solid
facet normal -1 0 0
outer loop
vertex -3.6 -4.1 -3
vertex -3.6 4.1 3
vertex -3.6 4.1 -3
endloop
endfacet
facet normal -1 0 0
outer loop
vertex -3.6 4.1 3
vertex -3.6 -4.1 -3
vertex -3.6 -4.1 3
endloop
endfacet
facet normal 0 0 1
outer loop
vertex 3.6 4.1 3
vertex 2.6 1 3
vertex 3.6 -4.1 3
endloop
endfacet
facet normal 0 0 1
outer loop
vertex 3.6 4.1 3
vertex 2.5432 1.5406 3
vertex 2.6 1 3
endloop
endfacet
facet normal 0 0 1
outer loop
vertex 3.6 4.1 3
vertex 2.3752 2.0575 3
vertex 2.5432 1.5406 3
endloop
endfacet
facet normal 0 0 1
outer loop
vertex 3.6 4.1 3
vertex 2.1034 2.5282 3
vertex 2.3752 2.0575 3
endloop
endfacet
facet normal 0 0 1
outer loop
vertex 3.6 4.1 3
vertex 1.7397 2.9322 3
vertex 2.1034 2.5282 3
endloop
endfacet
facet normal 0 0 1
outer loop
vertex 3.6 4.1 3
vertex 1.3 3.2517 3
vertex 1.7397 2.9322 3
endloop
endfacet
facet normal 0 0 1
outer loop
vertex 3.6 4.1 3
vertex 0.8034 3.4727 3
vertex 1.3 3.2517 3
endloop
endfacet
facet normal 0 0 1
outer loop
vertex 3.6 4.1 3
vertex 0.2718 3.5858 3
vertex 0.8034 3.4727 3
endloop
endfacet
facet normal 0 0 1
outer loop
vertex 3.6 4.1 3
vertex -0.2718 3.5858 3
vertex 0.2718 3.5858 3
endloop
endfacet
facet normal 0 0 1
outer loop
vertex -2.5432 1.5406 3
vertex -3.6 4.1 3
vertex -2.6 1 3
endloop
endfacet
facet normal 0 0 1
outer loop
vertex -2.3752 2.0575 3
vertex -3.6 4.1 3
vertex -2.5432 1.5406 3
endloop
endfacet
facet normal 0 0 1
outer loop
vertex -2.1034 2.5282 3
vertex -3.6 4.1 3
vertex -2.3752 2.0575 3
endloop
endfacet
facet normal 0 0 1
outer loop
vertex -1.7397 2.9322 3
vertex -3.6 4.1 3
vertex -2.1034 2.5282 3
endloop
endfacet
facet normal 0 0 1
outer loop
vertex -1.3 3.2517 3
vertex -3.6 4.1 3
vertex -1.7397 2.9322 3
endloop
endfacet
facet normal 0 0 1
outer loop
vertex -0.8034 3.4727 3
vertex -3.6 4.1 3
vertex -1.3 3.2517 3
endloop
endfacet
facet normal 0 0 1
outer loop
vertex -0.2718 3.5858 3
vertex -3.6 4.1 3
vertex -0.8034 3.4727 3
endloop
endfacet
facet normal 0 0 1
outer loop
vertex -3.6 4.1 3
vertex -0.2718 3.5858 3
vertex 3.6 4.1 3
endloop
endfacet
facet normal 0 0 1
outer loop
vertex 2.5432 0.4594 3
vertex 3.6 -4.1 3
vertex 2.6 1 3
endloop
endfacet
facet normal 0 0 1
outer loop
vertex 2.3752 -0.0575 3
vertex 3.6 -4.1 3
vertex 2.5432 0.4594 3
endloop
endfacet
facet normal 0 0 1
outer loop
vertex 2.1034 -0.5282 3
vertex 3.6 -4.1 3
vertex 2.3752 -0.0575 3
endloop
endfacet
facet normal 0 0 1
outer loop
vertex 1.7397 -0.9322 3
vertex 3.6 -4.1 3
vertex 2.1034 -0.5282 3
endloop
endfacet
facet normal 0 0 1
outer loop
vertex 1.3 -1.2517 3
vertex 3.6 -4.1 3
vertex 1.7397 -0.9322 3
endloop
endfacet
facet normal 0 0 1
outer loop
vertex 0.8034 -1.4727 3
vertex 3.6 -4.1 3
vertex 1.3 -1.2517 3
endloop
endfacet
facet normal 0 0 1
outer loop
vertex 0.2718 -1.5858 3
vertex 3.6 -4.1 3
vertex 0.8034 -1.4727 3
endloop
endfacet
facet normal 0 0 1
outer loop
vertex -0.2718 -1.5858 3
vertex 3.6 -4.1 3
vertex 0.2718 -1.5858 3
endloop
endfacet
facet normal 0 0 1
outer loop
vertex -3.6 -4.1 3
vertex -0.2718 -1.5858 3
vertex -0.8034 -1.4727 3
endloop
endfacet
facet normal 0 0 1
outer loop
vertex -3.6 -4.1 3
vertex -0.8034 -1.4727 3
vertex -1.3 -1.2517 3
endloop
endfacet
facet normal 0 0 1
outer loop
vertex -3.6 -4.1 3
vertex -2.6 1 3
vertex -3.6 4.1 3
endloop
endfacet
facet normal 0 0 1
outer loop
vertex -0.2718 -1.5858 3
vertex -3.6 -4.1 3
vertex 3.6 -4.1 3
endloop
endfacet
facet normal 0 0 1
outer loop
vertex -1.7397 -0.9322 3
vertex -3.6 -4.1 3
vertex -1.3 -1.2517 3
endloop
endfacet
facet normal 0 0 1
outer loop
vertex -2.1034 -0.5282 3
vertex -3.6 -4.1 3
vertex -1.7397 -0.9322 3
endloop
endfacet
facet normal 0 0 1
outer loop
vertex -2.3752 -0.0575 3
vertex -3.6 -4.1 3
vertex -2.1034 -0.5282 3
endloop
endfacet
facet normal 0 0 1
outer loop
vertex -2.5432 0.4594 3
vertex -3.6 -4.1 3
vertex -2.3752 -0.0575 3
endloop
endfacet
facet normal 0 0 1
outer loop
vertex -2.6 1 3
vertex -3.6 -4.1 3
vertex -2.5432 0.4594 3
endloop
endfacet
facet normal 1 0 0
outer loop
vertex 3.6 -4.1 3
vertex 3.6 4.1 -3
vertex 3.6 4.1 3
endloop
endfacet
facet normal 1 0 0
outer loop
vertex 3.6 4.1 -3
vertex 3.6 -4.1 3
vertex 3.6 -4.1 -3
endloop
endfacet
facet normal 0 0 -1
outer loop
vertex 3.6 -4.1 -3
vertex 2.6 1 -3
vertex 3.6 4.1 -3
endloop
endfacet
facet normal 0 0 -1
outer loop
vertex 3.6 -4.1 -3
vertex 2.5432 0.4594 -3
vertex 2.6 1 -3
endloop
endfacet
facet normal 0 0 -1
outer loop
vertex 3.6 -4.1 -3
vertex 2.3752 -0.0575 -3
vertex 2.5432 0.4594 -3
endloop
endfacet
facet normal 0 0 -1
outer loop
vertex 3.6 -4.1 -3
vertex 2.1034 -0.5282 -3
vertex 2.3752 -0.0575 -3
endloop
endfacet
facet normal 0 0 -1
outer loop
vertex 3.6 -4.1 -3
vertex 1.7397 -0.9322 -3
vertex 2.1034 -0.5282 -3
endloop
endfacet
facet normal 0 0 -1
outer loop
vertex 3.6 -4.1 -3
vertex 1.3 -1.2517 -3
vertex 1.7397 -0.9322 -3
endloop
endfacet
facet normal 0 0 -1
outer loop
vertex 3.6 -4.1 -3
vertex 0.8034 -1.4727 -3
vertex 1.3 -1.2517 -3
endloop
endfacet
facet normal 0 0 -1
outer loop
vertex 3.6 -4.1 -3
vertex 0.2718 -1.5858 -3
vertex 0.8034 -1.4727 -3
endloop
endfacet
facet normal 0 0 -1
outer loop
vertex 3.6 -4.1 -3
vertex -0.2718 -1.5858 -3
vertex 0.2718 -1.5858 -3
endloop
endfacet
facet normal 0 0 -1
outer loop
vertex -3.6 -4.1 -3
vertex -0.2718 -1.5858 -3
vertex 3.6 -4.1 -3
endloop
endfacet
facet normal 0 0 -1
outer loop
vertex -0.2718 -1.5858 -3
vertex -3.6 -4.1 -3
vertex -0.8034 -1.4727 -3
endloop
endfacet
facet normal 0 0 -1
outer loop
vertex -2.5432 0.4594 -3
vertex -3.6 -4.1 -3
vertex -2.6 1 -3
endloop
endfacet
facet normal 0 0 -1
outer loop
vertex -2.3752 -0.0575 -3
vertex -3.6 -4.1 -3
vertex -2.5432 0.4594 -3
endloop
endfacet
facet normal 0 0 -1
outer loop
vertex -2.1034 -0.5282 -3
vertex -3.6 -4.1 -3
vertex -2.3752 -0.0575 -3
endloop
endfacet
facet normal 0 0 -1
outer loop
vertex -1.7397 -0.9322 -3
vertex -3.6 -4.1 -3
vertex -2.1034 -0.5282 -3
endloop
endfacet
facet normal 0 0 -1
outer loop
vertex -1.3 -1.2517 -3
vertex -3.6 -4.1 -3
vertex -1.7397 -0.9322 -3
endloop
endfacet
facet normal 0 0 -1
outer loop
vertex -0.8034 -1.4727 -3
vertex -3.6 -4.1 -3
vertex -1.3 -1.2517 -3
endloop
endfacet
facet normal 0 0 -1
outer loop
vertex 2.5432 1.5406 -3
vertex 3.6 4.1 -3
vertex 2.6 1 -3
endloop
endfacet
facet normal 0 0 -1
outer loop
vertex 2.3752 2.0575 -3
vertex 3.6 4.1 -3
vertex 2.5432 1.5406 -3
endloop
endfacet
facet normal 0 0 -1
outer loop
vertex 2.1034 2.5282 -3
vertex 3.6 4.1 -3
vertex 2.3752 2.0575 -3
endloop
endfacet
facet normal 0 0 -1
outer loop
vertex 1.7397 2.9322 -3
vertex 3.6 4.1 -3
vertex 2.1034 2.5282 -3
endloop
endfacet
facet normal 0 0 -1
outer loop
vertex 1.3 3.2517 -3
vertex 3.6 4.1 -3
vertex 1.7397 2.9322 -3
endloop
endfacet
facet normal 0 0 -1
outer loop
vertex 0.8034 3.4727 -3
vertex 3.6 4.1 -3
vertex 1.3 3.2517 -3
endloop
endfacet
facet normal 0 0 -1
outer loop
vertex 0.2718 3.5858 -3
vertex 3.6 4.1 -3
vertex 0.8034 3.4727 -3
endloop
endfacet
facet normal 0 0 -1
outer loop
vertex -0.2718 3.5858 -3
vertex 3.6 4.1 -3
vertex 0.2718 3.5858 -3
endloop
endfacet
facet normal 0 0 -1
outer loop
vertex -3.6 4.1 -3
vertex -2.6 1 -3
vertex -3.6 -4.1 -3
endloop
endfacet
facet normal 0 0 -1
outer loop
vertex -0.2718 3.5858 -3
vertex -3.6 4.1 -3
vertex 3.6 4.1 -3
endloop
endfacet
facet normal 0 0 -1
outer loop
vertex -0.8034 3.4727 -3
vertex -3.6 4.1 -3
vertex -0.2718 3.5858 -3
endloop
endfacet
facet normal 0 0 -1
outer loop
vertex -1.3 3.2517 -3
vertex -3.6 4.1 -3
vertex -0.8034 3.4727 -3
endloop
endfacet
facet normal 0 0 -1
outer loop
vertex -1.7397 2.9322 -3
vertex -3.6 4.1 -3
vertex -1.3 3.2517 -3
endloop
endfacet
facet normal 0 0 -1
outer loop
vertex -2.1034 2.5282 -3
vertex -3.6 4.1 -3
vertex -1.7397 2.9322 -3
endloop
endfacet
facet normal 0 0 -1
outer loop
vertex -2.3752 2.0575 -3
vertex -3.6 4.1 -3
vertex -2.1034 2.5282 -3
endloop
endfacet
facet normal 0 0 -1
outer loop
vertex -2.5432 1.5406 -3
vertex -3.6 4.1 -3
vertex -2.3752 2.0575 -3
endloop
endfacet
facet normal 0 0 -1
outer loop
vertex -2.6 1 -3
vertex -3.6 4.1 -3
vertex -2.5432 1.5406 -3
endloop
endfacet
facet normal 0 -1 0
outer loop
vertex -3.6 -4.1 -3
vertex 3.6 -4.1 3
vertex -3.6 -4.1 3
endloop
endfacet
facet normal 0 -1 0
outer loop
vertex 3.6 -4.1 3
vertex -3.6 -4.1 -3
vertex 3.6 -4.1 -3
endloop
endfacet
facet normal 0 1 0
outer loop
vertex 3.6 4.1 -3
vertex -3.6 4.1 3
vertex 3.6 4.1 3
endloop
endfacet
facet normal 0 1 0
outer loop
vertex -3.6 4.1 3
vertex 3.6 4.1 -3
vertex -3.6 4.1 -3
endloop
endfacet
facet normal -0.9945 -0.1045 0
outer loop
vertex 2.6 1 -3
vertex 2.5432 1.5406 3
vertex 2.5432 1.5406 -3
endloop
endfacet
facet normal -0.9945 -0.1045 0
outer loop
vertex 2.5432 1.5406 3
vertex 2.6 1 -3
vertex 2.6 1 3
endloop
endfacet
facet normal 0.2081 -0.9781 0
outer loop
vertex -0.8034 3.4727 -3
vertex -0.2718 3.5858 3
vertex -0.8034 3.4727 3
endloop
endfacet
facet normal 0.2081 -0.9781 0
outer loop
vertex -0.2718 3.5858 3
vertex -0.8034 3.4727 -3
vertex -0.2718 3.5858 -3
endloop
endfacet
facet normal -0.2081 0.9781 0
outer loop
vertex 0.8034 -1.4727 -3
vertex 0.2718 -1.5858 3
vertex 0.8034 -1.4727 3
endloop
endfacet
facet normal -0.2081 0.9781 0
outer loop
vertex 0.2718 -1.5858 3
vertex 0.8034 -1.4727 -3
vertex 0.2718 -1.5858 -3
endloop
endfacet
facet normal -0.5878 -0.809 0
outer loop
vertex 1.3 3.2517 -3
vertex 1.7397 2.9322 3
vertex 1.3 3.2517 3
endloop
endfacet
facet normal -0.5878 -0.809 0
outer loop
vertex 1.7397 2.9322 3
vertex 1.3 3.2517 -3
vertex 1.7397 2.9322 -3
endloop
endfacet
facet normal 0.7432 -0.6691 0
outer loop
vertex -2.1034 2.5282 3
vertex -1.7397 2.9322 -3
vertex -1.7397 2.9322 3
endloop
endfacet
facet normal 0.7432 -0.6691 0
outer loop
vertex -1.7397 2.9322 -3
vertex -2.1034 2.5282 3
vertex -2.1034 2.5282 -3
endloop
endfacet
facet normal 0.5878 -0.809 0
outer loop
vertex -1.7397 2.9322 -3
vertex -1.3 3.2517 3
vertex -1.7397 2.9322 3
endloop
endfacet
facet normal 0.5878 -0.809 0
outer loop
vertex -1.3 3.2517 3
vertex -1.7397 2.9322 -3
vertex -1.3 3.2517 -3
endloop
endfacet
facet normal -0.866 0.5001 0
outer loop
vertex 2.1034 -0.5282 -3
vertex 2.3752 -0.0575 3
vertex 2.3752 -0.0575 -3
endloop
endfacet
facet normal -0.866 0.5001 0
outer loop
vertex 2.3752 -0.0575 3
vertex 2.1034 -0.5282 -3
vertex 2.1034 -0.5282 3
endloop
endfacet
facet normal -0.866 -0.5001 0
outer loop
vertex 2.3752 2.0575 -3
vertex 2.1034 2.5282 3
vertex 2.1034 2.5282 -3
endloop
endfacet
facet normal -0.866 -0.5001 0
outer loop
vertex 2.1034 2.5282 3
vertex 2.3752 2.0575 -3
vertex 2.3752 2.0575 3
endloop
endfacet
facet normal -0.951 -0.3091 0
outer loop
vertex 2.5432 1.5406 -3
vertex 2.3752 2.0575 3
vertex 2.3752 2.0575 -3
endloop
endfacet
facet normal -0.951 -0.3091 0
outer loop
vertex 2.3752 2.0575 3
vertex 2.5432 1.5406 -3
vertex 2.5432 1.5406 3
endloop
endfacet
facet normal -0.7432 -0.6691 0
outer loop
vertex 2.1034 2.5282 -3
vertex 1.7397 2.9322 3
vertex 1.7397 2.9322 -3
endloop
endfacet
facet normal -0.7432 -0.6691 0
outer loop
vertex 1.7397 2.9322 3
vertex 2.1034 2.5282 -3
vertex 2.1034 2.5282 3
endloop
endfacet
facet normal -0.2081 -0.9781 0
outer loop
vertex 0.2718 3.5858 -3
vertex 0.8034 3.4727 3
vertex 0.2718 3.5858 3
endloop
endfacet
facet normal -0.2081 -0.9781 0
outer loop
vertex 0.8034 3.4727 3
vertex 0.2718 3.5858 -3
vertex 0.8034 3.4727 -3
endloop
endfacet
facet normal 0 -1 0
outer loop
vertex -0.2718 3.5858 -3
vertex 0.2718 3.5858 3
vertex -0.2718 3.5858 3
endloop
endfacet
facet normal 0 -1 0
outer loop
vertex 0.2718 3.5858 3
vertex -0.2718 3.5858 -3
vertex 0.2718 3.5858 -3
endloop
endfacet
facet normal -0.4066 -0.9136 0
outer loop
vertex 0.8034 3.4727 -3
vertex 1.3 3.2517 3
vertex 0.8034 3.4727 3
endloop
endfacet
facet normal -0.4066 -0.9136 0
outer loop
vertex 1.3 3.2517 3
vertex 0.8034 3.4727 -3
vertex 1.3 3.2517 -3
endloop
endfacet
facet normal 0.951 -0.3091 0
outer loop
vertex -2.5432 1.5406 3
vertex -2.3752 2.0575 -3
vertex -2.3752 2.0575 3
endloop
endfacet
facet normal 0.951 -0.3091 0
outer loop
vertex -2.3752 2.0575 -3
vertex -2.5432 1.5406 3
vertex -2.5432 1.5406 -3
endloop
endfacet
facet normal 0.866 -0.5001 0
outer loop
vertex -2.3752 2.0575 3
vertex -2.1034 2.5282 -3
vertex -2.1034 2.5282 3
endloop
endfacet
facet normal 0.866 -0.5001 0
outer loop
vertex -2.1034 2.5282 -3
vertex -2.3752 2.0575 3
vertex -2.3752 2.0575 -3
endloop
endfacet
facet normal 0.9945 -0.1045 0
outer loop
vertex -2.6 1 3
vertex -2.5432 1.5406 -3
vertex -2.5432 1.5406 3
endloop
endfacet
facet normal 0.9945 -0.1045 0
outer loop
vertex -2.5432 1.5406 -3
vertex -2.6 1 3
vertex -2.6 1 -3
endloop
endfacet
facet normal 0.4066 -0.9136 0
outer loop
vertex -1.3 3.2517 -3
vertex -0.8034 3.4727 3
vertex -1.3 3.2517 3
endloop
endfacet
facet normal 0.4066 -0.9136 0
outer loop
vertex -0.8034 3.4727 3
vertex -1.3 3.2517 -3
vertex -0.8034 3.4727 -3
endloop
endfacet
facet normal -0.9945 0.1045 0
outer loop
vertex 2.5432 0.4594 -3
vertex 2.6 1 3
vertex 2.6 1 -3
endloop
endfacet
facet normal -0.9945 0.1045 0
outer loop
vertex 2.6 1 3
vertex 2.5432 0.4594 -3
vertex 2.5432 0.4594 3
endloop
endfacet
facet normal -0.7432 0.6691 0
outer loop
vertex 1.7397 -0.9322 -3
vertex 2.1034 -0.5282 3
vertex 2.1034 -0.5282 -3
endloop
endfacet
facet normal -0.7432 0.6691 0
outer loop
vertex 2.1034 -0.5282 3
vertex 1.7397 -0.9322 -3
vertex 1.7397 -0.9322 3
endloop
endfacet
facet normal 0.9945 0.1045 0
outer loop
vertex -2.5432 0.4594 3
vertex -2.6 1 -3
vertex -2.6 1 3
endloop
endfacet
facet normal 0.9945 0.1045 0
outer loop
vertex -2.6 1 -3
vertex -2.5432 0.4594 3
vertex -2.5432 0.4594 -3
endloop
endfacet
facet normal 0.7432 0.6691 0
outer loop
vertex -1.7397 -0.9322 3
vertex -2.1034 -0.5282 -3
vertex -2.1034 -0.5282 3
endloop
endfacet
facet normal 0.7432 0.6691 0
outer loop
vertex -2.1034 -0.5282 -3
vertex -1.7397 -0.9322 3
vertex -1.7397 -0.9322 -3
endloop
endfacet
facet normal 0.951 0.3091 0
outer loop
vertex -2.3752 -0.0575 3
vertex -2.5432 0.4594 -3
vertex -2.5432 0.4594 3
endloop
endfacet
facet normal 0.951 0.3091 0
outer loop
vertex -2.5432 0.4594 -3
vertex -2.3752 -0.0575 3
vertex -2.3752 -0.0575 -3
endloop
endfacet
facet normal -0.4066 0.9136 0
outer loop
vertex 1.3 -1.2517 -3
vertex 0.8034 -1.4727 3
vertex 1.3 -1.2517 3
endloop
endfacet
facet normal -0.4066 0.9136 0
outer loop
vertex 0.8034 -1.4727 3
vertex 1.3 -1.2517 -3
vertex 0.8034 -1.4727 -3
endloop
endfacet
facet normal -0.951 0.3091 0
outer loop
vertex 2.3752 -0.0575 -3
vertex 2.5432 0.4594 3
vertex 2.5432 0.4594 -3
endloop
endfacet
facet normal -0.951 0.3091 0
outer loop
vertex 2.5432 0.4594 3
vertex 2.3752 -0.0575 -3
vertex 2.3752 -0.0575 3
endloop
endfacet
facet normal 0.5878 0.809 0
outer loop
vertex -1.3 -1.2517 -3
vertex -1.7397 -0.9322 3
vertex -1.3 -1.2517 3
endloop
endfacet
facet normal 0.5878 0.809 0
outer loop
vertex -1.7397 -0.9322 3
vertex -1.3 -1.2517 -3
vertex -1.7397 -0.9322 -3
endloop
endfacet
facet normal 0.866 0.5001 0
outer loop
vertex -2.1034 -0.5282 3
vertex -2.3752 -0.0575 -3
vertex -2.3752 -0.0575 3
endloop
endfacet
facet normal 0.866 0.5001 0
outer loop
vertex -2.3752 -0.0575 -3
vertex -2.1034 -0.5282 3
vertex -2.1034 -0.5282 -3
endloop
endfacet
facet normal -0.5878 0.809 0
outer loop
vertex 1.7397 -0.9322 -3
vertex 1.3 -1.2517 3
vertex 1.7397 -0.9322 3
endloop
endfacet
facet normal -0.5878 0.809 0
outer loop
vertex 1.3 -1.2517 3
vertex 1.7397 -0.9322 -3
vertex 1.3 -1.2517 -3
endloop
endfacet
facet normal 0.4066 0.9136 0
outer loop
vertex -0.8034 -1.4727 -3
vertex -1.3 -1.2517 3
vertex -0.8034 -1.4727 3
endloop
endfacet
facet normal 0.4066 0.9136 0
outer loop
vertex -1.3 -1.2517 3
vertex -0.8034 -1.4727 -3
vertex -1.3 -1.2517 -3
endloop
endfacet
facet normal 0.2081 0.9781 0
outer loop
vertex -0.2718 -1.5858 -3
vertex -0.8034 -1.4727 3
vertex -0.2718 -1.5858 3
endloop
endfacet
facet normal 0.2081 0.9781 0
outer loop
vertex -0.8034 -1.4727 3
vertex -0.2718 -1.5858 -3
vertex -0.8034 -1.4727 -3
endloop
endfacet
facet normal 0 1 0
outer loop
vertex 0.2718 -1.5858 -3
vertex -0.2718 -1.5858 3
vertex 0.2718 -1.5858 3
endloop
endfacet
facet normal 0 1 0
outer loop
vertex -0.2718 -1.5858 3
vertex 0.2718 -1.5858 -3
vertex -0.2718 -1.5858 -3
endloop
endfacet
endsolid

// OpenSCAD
//
// LEDHolder.scad
//
// Generates a holder for an RGB LED for the Geneva Clock project.
//


LedHeight = 2;
LedDiameter = 5.2;
LedLength = 6;
Perimiter = 1;
$fn = 30;


difference()
{
    cube([LedDiameter + 2 * Perimiter, 
          LedDiameter + Perimiter + LedHeight, 
          LedLength], center = true);
    translate([0, LedHeight / 2, - LedLength / 2 -.1])
        cylinder(d = LedDiameter, h = LedLength + .2);
}
